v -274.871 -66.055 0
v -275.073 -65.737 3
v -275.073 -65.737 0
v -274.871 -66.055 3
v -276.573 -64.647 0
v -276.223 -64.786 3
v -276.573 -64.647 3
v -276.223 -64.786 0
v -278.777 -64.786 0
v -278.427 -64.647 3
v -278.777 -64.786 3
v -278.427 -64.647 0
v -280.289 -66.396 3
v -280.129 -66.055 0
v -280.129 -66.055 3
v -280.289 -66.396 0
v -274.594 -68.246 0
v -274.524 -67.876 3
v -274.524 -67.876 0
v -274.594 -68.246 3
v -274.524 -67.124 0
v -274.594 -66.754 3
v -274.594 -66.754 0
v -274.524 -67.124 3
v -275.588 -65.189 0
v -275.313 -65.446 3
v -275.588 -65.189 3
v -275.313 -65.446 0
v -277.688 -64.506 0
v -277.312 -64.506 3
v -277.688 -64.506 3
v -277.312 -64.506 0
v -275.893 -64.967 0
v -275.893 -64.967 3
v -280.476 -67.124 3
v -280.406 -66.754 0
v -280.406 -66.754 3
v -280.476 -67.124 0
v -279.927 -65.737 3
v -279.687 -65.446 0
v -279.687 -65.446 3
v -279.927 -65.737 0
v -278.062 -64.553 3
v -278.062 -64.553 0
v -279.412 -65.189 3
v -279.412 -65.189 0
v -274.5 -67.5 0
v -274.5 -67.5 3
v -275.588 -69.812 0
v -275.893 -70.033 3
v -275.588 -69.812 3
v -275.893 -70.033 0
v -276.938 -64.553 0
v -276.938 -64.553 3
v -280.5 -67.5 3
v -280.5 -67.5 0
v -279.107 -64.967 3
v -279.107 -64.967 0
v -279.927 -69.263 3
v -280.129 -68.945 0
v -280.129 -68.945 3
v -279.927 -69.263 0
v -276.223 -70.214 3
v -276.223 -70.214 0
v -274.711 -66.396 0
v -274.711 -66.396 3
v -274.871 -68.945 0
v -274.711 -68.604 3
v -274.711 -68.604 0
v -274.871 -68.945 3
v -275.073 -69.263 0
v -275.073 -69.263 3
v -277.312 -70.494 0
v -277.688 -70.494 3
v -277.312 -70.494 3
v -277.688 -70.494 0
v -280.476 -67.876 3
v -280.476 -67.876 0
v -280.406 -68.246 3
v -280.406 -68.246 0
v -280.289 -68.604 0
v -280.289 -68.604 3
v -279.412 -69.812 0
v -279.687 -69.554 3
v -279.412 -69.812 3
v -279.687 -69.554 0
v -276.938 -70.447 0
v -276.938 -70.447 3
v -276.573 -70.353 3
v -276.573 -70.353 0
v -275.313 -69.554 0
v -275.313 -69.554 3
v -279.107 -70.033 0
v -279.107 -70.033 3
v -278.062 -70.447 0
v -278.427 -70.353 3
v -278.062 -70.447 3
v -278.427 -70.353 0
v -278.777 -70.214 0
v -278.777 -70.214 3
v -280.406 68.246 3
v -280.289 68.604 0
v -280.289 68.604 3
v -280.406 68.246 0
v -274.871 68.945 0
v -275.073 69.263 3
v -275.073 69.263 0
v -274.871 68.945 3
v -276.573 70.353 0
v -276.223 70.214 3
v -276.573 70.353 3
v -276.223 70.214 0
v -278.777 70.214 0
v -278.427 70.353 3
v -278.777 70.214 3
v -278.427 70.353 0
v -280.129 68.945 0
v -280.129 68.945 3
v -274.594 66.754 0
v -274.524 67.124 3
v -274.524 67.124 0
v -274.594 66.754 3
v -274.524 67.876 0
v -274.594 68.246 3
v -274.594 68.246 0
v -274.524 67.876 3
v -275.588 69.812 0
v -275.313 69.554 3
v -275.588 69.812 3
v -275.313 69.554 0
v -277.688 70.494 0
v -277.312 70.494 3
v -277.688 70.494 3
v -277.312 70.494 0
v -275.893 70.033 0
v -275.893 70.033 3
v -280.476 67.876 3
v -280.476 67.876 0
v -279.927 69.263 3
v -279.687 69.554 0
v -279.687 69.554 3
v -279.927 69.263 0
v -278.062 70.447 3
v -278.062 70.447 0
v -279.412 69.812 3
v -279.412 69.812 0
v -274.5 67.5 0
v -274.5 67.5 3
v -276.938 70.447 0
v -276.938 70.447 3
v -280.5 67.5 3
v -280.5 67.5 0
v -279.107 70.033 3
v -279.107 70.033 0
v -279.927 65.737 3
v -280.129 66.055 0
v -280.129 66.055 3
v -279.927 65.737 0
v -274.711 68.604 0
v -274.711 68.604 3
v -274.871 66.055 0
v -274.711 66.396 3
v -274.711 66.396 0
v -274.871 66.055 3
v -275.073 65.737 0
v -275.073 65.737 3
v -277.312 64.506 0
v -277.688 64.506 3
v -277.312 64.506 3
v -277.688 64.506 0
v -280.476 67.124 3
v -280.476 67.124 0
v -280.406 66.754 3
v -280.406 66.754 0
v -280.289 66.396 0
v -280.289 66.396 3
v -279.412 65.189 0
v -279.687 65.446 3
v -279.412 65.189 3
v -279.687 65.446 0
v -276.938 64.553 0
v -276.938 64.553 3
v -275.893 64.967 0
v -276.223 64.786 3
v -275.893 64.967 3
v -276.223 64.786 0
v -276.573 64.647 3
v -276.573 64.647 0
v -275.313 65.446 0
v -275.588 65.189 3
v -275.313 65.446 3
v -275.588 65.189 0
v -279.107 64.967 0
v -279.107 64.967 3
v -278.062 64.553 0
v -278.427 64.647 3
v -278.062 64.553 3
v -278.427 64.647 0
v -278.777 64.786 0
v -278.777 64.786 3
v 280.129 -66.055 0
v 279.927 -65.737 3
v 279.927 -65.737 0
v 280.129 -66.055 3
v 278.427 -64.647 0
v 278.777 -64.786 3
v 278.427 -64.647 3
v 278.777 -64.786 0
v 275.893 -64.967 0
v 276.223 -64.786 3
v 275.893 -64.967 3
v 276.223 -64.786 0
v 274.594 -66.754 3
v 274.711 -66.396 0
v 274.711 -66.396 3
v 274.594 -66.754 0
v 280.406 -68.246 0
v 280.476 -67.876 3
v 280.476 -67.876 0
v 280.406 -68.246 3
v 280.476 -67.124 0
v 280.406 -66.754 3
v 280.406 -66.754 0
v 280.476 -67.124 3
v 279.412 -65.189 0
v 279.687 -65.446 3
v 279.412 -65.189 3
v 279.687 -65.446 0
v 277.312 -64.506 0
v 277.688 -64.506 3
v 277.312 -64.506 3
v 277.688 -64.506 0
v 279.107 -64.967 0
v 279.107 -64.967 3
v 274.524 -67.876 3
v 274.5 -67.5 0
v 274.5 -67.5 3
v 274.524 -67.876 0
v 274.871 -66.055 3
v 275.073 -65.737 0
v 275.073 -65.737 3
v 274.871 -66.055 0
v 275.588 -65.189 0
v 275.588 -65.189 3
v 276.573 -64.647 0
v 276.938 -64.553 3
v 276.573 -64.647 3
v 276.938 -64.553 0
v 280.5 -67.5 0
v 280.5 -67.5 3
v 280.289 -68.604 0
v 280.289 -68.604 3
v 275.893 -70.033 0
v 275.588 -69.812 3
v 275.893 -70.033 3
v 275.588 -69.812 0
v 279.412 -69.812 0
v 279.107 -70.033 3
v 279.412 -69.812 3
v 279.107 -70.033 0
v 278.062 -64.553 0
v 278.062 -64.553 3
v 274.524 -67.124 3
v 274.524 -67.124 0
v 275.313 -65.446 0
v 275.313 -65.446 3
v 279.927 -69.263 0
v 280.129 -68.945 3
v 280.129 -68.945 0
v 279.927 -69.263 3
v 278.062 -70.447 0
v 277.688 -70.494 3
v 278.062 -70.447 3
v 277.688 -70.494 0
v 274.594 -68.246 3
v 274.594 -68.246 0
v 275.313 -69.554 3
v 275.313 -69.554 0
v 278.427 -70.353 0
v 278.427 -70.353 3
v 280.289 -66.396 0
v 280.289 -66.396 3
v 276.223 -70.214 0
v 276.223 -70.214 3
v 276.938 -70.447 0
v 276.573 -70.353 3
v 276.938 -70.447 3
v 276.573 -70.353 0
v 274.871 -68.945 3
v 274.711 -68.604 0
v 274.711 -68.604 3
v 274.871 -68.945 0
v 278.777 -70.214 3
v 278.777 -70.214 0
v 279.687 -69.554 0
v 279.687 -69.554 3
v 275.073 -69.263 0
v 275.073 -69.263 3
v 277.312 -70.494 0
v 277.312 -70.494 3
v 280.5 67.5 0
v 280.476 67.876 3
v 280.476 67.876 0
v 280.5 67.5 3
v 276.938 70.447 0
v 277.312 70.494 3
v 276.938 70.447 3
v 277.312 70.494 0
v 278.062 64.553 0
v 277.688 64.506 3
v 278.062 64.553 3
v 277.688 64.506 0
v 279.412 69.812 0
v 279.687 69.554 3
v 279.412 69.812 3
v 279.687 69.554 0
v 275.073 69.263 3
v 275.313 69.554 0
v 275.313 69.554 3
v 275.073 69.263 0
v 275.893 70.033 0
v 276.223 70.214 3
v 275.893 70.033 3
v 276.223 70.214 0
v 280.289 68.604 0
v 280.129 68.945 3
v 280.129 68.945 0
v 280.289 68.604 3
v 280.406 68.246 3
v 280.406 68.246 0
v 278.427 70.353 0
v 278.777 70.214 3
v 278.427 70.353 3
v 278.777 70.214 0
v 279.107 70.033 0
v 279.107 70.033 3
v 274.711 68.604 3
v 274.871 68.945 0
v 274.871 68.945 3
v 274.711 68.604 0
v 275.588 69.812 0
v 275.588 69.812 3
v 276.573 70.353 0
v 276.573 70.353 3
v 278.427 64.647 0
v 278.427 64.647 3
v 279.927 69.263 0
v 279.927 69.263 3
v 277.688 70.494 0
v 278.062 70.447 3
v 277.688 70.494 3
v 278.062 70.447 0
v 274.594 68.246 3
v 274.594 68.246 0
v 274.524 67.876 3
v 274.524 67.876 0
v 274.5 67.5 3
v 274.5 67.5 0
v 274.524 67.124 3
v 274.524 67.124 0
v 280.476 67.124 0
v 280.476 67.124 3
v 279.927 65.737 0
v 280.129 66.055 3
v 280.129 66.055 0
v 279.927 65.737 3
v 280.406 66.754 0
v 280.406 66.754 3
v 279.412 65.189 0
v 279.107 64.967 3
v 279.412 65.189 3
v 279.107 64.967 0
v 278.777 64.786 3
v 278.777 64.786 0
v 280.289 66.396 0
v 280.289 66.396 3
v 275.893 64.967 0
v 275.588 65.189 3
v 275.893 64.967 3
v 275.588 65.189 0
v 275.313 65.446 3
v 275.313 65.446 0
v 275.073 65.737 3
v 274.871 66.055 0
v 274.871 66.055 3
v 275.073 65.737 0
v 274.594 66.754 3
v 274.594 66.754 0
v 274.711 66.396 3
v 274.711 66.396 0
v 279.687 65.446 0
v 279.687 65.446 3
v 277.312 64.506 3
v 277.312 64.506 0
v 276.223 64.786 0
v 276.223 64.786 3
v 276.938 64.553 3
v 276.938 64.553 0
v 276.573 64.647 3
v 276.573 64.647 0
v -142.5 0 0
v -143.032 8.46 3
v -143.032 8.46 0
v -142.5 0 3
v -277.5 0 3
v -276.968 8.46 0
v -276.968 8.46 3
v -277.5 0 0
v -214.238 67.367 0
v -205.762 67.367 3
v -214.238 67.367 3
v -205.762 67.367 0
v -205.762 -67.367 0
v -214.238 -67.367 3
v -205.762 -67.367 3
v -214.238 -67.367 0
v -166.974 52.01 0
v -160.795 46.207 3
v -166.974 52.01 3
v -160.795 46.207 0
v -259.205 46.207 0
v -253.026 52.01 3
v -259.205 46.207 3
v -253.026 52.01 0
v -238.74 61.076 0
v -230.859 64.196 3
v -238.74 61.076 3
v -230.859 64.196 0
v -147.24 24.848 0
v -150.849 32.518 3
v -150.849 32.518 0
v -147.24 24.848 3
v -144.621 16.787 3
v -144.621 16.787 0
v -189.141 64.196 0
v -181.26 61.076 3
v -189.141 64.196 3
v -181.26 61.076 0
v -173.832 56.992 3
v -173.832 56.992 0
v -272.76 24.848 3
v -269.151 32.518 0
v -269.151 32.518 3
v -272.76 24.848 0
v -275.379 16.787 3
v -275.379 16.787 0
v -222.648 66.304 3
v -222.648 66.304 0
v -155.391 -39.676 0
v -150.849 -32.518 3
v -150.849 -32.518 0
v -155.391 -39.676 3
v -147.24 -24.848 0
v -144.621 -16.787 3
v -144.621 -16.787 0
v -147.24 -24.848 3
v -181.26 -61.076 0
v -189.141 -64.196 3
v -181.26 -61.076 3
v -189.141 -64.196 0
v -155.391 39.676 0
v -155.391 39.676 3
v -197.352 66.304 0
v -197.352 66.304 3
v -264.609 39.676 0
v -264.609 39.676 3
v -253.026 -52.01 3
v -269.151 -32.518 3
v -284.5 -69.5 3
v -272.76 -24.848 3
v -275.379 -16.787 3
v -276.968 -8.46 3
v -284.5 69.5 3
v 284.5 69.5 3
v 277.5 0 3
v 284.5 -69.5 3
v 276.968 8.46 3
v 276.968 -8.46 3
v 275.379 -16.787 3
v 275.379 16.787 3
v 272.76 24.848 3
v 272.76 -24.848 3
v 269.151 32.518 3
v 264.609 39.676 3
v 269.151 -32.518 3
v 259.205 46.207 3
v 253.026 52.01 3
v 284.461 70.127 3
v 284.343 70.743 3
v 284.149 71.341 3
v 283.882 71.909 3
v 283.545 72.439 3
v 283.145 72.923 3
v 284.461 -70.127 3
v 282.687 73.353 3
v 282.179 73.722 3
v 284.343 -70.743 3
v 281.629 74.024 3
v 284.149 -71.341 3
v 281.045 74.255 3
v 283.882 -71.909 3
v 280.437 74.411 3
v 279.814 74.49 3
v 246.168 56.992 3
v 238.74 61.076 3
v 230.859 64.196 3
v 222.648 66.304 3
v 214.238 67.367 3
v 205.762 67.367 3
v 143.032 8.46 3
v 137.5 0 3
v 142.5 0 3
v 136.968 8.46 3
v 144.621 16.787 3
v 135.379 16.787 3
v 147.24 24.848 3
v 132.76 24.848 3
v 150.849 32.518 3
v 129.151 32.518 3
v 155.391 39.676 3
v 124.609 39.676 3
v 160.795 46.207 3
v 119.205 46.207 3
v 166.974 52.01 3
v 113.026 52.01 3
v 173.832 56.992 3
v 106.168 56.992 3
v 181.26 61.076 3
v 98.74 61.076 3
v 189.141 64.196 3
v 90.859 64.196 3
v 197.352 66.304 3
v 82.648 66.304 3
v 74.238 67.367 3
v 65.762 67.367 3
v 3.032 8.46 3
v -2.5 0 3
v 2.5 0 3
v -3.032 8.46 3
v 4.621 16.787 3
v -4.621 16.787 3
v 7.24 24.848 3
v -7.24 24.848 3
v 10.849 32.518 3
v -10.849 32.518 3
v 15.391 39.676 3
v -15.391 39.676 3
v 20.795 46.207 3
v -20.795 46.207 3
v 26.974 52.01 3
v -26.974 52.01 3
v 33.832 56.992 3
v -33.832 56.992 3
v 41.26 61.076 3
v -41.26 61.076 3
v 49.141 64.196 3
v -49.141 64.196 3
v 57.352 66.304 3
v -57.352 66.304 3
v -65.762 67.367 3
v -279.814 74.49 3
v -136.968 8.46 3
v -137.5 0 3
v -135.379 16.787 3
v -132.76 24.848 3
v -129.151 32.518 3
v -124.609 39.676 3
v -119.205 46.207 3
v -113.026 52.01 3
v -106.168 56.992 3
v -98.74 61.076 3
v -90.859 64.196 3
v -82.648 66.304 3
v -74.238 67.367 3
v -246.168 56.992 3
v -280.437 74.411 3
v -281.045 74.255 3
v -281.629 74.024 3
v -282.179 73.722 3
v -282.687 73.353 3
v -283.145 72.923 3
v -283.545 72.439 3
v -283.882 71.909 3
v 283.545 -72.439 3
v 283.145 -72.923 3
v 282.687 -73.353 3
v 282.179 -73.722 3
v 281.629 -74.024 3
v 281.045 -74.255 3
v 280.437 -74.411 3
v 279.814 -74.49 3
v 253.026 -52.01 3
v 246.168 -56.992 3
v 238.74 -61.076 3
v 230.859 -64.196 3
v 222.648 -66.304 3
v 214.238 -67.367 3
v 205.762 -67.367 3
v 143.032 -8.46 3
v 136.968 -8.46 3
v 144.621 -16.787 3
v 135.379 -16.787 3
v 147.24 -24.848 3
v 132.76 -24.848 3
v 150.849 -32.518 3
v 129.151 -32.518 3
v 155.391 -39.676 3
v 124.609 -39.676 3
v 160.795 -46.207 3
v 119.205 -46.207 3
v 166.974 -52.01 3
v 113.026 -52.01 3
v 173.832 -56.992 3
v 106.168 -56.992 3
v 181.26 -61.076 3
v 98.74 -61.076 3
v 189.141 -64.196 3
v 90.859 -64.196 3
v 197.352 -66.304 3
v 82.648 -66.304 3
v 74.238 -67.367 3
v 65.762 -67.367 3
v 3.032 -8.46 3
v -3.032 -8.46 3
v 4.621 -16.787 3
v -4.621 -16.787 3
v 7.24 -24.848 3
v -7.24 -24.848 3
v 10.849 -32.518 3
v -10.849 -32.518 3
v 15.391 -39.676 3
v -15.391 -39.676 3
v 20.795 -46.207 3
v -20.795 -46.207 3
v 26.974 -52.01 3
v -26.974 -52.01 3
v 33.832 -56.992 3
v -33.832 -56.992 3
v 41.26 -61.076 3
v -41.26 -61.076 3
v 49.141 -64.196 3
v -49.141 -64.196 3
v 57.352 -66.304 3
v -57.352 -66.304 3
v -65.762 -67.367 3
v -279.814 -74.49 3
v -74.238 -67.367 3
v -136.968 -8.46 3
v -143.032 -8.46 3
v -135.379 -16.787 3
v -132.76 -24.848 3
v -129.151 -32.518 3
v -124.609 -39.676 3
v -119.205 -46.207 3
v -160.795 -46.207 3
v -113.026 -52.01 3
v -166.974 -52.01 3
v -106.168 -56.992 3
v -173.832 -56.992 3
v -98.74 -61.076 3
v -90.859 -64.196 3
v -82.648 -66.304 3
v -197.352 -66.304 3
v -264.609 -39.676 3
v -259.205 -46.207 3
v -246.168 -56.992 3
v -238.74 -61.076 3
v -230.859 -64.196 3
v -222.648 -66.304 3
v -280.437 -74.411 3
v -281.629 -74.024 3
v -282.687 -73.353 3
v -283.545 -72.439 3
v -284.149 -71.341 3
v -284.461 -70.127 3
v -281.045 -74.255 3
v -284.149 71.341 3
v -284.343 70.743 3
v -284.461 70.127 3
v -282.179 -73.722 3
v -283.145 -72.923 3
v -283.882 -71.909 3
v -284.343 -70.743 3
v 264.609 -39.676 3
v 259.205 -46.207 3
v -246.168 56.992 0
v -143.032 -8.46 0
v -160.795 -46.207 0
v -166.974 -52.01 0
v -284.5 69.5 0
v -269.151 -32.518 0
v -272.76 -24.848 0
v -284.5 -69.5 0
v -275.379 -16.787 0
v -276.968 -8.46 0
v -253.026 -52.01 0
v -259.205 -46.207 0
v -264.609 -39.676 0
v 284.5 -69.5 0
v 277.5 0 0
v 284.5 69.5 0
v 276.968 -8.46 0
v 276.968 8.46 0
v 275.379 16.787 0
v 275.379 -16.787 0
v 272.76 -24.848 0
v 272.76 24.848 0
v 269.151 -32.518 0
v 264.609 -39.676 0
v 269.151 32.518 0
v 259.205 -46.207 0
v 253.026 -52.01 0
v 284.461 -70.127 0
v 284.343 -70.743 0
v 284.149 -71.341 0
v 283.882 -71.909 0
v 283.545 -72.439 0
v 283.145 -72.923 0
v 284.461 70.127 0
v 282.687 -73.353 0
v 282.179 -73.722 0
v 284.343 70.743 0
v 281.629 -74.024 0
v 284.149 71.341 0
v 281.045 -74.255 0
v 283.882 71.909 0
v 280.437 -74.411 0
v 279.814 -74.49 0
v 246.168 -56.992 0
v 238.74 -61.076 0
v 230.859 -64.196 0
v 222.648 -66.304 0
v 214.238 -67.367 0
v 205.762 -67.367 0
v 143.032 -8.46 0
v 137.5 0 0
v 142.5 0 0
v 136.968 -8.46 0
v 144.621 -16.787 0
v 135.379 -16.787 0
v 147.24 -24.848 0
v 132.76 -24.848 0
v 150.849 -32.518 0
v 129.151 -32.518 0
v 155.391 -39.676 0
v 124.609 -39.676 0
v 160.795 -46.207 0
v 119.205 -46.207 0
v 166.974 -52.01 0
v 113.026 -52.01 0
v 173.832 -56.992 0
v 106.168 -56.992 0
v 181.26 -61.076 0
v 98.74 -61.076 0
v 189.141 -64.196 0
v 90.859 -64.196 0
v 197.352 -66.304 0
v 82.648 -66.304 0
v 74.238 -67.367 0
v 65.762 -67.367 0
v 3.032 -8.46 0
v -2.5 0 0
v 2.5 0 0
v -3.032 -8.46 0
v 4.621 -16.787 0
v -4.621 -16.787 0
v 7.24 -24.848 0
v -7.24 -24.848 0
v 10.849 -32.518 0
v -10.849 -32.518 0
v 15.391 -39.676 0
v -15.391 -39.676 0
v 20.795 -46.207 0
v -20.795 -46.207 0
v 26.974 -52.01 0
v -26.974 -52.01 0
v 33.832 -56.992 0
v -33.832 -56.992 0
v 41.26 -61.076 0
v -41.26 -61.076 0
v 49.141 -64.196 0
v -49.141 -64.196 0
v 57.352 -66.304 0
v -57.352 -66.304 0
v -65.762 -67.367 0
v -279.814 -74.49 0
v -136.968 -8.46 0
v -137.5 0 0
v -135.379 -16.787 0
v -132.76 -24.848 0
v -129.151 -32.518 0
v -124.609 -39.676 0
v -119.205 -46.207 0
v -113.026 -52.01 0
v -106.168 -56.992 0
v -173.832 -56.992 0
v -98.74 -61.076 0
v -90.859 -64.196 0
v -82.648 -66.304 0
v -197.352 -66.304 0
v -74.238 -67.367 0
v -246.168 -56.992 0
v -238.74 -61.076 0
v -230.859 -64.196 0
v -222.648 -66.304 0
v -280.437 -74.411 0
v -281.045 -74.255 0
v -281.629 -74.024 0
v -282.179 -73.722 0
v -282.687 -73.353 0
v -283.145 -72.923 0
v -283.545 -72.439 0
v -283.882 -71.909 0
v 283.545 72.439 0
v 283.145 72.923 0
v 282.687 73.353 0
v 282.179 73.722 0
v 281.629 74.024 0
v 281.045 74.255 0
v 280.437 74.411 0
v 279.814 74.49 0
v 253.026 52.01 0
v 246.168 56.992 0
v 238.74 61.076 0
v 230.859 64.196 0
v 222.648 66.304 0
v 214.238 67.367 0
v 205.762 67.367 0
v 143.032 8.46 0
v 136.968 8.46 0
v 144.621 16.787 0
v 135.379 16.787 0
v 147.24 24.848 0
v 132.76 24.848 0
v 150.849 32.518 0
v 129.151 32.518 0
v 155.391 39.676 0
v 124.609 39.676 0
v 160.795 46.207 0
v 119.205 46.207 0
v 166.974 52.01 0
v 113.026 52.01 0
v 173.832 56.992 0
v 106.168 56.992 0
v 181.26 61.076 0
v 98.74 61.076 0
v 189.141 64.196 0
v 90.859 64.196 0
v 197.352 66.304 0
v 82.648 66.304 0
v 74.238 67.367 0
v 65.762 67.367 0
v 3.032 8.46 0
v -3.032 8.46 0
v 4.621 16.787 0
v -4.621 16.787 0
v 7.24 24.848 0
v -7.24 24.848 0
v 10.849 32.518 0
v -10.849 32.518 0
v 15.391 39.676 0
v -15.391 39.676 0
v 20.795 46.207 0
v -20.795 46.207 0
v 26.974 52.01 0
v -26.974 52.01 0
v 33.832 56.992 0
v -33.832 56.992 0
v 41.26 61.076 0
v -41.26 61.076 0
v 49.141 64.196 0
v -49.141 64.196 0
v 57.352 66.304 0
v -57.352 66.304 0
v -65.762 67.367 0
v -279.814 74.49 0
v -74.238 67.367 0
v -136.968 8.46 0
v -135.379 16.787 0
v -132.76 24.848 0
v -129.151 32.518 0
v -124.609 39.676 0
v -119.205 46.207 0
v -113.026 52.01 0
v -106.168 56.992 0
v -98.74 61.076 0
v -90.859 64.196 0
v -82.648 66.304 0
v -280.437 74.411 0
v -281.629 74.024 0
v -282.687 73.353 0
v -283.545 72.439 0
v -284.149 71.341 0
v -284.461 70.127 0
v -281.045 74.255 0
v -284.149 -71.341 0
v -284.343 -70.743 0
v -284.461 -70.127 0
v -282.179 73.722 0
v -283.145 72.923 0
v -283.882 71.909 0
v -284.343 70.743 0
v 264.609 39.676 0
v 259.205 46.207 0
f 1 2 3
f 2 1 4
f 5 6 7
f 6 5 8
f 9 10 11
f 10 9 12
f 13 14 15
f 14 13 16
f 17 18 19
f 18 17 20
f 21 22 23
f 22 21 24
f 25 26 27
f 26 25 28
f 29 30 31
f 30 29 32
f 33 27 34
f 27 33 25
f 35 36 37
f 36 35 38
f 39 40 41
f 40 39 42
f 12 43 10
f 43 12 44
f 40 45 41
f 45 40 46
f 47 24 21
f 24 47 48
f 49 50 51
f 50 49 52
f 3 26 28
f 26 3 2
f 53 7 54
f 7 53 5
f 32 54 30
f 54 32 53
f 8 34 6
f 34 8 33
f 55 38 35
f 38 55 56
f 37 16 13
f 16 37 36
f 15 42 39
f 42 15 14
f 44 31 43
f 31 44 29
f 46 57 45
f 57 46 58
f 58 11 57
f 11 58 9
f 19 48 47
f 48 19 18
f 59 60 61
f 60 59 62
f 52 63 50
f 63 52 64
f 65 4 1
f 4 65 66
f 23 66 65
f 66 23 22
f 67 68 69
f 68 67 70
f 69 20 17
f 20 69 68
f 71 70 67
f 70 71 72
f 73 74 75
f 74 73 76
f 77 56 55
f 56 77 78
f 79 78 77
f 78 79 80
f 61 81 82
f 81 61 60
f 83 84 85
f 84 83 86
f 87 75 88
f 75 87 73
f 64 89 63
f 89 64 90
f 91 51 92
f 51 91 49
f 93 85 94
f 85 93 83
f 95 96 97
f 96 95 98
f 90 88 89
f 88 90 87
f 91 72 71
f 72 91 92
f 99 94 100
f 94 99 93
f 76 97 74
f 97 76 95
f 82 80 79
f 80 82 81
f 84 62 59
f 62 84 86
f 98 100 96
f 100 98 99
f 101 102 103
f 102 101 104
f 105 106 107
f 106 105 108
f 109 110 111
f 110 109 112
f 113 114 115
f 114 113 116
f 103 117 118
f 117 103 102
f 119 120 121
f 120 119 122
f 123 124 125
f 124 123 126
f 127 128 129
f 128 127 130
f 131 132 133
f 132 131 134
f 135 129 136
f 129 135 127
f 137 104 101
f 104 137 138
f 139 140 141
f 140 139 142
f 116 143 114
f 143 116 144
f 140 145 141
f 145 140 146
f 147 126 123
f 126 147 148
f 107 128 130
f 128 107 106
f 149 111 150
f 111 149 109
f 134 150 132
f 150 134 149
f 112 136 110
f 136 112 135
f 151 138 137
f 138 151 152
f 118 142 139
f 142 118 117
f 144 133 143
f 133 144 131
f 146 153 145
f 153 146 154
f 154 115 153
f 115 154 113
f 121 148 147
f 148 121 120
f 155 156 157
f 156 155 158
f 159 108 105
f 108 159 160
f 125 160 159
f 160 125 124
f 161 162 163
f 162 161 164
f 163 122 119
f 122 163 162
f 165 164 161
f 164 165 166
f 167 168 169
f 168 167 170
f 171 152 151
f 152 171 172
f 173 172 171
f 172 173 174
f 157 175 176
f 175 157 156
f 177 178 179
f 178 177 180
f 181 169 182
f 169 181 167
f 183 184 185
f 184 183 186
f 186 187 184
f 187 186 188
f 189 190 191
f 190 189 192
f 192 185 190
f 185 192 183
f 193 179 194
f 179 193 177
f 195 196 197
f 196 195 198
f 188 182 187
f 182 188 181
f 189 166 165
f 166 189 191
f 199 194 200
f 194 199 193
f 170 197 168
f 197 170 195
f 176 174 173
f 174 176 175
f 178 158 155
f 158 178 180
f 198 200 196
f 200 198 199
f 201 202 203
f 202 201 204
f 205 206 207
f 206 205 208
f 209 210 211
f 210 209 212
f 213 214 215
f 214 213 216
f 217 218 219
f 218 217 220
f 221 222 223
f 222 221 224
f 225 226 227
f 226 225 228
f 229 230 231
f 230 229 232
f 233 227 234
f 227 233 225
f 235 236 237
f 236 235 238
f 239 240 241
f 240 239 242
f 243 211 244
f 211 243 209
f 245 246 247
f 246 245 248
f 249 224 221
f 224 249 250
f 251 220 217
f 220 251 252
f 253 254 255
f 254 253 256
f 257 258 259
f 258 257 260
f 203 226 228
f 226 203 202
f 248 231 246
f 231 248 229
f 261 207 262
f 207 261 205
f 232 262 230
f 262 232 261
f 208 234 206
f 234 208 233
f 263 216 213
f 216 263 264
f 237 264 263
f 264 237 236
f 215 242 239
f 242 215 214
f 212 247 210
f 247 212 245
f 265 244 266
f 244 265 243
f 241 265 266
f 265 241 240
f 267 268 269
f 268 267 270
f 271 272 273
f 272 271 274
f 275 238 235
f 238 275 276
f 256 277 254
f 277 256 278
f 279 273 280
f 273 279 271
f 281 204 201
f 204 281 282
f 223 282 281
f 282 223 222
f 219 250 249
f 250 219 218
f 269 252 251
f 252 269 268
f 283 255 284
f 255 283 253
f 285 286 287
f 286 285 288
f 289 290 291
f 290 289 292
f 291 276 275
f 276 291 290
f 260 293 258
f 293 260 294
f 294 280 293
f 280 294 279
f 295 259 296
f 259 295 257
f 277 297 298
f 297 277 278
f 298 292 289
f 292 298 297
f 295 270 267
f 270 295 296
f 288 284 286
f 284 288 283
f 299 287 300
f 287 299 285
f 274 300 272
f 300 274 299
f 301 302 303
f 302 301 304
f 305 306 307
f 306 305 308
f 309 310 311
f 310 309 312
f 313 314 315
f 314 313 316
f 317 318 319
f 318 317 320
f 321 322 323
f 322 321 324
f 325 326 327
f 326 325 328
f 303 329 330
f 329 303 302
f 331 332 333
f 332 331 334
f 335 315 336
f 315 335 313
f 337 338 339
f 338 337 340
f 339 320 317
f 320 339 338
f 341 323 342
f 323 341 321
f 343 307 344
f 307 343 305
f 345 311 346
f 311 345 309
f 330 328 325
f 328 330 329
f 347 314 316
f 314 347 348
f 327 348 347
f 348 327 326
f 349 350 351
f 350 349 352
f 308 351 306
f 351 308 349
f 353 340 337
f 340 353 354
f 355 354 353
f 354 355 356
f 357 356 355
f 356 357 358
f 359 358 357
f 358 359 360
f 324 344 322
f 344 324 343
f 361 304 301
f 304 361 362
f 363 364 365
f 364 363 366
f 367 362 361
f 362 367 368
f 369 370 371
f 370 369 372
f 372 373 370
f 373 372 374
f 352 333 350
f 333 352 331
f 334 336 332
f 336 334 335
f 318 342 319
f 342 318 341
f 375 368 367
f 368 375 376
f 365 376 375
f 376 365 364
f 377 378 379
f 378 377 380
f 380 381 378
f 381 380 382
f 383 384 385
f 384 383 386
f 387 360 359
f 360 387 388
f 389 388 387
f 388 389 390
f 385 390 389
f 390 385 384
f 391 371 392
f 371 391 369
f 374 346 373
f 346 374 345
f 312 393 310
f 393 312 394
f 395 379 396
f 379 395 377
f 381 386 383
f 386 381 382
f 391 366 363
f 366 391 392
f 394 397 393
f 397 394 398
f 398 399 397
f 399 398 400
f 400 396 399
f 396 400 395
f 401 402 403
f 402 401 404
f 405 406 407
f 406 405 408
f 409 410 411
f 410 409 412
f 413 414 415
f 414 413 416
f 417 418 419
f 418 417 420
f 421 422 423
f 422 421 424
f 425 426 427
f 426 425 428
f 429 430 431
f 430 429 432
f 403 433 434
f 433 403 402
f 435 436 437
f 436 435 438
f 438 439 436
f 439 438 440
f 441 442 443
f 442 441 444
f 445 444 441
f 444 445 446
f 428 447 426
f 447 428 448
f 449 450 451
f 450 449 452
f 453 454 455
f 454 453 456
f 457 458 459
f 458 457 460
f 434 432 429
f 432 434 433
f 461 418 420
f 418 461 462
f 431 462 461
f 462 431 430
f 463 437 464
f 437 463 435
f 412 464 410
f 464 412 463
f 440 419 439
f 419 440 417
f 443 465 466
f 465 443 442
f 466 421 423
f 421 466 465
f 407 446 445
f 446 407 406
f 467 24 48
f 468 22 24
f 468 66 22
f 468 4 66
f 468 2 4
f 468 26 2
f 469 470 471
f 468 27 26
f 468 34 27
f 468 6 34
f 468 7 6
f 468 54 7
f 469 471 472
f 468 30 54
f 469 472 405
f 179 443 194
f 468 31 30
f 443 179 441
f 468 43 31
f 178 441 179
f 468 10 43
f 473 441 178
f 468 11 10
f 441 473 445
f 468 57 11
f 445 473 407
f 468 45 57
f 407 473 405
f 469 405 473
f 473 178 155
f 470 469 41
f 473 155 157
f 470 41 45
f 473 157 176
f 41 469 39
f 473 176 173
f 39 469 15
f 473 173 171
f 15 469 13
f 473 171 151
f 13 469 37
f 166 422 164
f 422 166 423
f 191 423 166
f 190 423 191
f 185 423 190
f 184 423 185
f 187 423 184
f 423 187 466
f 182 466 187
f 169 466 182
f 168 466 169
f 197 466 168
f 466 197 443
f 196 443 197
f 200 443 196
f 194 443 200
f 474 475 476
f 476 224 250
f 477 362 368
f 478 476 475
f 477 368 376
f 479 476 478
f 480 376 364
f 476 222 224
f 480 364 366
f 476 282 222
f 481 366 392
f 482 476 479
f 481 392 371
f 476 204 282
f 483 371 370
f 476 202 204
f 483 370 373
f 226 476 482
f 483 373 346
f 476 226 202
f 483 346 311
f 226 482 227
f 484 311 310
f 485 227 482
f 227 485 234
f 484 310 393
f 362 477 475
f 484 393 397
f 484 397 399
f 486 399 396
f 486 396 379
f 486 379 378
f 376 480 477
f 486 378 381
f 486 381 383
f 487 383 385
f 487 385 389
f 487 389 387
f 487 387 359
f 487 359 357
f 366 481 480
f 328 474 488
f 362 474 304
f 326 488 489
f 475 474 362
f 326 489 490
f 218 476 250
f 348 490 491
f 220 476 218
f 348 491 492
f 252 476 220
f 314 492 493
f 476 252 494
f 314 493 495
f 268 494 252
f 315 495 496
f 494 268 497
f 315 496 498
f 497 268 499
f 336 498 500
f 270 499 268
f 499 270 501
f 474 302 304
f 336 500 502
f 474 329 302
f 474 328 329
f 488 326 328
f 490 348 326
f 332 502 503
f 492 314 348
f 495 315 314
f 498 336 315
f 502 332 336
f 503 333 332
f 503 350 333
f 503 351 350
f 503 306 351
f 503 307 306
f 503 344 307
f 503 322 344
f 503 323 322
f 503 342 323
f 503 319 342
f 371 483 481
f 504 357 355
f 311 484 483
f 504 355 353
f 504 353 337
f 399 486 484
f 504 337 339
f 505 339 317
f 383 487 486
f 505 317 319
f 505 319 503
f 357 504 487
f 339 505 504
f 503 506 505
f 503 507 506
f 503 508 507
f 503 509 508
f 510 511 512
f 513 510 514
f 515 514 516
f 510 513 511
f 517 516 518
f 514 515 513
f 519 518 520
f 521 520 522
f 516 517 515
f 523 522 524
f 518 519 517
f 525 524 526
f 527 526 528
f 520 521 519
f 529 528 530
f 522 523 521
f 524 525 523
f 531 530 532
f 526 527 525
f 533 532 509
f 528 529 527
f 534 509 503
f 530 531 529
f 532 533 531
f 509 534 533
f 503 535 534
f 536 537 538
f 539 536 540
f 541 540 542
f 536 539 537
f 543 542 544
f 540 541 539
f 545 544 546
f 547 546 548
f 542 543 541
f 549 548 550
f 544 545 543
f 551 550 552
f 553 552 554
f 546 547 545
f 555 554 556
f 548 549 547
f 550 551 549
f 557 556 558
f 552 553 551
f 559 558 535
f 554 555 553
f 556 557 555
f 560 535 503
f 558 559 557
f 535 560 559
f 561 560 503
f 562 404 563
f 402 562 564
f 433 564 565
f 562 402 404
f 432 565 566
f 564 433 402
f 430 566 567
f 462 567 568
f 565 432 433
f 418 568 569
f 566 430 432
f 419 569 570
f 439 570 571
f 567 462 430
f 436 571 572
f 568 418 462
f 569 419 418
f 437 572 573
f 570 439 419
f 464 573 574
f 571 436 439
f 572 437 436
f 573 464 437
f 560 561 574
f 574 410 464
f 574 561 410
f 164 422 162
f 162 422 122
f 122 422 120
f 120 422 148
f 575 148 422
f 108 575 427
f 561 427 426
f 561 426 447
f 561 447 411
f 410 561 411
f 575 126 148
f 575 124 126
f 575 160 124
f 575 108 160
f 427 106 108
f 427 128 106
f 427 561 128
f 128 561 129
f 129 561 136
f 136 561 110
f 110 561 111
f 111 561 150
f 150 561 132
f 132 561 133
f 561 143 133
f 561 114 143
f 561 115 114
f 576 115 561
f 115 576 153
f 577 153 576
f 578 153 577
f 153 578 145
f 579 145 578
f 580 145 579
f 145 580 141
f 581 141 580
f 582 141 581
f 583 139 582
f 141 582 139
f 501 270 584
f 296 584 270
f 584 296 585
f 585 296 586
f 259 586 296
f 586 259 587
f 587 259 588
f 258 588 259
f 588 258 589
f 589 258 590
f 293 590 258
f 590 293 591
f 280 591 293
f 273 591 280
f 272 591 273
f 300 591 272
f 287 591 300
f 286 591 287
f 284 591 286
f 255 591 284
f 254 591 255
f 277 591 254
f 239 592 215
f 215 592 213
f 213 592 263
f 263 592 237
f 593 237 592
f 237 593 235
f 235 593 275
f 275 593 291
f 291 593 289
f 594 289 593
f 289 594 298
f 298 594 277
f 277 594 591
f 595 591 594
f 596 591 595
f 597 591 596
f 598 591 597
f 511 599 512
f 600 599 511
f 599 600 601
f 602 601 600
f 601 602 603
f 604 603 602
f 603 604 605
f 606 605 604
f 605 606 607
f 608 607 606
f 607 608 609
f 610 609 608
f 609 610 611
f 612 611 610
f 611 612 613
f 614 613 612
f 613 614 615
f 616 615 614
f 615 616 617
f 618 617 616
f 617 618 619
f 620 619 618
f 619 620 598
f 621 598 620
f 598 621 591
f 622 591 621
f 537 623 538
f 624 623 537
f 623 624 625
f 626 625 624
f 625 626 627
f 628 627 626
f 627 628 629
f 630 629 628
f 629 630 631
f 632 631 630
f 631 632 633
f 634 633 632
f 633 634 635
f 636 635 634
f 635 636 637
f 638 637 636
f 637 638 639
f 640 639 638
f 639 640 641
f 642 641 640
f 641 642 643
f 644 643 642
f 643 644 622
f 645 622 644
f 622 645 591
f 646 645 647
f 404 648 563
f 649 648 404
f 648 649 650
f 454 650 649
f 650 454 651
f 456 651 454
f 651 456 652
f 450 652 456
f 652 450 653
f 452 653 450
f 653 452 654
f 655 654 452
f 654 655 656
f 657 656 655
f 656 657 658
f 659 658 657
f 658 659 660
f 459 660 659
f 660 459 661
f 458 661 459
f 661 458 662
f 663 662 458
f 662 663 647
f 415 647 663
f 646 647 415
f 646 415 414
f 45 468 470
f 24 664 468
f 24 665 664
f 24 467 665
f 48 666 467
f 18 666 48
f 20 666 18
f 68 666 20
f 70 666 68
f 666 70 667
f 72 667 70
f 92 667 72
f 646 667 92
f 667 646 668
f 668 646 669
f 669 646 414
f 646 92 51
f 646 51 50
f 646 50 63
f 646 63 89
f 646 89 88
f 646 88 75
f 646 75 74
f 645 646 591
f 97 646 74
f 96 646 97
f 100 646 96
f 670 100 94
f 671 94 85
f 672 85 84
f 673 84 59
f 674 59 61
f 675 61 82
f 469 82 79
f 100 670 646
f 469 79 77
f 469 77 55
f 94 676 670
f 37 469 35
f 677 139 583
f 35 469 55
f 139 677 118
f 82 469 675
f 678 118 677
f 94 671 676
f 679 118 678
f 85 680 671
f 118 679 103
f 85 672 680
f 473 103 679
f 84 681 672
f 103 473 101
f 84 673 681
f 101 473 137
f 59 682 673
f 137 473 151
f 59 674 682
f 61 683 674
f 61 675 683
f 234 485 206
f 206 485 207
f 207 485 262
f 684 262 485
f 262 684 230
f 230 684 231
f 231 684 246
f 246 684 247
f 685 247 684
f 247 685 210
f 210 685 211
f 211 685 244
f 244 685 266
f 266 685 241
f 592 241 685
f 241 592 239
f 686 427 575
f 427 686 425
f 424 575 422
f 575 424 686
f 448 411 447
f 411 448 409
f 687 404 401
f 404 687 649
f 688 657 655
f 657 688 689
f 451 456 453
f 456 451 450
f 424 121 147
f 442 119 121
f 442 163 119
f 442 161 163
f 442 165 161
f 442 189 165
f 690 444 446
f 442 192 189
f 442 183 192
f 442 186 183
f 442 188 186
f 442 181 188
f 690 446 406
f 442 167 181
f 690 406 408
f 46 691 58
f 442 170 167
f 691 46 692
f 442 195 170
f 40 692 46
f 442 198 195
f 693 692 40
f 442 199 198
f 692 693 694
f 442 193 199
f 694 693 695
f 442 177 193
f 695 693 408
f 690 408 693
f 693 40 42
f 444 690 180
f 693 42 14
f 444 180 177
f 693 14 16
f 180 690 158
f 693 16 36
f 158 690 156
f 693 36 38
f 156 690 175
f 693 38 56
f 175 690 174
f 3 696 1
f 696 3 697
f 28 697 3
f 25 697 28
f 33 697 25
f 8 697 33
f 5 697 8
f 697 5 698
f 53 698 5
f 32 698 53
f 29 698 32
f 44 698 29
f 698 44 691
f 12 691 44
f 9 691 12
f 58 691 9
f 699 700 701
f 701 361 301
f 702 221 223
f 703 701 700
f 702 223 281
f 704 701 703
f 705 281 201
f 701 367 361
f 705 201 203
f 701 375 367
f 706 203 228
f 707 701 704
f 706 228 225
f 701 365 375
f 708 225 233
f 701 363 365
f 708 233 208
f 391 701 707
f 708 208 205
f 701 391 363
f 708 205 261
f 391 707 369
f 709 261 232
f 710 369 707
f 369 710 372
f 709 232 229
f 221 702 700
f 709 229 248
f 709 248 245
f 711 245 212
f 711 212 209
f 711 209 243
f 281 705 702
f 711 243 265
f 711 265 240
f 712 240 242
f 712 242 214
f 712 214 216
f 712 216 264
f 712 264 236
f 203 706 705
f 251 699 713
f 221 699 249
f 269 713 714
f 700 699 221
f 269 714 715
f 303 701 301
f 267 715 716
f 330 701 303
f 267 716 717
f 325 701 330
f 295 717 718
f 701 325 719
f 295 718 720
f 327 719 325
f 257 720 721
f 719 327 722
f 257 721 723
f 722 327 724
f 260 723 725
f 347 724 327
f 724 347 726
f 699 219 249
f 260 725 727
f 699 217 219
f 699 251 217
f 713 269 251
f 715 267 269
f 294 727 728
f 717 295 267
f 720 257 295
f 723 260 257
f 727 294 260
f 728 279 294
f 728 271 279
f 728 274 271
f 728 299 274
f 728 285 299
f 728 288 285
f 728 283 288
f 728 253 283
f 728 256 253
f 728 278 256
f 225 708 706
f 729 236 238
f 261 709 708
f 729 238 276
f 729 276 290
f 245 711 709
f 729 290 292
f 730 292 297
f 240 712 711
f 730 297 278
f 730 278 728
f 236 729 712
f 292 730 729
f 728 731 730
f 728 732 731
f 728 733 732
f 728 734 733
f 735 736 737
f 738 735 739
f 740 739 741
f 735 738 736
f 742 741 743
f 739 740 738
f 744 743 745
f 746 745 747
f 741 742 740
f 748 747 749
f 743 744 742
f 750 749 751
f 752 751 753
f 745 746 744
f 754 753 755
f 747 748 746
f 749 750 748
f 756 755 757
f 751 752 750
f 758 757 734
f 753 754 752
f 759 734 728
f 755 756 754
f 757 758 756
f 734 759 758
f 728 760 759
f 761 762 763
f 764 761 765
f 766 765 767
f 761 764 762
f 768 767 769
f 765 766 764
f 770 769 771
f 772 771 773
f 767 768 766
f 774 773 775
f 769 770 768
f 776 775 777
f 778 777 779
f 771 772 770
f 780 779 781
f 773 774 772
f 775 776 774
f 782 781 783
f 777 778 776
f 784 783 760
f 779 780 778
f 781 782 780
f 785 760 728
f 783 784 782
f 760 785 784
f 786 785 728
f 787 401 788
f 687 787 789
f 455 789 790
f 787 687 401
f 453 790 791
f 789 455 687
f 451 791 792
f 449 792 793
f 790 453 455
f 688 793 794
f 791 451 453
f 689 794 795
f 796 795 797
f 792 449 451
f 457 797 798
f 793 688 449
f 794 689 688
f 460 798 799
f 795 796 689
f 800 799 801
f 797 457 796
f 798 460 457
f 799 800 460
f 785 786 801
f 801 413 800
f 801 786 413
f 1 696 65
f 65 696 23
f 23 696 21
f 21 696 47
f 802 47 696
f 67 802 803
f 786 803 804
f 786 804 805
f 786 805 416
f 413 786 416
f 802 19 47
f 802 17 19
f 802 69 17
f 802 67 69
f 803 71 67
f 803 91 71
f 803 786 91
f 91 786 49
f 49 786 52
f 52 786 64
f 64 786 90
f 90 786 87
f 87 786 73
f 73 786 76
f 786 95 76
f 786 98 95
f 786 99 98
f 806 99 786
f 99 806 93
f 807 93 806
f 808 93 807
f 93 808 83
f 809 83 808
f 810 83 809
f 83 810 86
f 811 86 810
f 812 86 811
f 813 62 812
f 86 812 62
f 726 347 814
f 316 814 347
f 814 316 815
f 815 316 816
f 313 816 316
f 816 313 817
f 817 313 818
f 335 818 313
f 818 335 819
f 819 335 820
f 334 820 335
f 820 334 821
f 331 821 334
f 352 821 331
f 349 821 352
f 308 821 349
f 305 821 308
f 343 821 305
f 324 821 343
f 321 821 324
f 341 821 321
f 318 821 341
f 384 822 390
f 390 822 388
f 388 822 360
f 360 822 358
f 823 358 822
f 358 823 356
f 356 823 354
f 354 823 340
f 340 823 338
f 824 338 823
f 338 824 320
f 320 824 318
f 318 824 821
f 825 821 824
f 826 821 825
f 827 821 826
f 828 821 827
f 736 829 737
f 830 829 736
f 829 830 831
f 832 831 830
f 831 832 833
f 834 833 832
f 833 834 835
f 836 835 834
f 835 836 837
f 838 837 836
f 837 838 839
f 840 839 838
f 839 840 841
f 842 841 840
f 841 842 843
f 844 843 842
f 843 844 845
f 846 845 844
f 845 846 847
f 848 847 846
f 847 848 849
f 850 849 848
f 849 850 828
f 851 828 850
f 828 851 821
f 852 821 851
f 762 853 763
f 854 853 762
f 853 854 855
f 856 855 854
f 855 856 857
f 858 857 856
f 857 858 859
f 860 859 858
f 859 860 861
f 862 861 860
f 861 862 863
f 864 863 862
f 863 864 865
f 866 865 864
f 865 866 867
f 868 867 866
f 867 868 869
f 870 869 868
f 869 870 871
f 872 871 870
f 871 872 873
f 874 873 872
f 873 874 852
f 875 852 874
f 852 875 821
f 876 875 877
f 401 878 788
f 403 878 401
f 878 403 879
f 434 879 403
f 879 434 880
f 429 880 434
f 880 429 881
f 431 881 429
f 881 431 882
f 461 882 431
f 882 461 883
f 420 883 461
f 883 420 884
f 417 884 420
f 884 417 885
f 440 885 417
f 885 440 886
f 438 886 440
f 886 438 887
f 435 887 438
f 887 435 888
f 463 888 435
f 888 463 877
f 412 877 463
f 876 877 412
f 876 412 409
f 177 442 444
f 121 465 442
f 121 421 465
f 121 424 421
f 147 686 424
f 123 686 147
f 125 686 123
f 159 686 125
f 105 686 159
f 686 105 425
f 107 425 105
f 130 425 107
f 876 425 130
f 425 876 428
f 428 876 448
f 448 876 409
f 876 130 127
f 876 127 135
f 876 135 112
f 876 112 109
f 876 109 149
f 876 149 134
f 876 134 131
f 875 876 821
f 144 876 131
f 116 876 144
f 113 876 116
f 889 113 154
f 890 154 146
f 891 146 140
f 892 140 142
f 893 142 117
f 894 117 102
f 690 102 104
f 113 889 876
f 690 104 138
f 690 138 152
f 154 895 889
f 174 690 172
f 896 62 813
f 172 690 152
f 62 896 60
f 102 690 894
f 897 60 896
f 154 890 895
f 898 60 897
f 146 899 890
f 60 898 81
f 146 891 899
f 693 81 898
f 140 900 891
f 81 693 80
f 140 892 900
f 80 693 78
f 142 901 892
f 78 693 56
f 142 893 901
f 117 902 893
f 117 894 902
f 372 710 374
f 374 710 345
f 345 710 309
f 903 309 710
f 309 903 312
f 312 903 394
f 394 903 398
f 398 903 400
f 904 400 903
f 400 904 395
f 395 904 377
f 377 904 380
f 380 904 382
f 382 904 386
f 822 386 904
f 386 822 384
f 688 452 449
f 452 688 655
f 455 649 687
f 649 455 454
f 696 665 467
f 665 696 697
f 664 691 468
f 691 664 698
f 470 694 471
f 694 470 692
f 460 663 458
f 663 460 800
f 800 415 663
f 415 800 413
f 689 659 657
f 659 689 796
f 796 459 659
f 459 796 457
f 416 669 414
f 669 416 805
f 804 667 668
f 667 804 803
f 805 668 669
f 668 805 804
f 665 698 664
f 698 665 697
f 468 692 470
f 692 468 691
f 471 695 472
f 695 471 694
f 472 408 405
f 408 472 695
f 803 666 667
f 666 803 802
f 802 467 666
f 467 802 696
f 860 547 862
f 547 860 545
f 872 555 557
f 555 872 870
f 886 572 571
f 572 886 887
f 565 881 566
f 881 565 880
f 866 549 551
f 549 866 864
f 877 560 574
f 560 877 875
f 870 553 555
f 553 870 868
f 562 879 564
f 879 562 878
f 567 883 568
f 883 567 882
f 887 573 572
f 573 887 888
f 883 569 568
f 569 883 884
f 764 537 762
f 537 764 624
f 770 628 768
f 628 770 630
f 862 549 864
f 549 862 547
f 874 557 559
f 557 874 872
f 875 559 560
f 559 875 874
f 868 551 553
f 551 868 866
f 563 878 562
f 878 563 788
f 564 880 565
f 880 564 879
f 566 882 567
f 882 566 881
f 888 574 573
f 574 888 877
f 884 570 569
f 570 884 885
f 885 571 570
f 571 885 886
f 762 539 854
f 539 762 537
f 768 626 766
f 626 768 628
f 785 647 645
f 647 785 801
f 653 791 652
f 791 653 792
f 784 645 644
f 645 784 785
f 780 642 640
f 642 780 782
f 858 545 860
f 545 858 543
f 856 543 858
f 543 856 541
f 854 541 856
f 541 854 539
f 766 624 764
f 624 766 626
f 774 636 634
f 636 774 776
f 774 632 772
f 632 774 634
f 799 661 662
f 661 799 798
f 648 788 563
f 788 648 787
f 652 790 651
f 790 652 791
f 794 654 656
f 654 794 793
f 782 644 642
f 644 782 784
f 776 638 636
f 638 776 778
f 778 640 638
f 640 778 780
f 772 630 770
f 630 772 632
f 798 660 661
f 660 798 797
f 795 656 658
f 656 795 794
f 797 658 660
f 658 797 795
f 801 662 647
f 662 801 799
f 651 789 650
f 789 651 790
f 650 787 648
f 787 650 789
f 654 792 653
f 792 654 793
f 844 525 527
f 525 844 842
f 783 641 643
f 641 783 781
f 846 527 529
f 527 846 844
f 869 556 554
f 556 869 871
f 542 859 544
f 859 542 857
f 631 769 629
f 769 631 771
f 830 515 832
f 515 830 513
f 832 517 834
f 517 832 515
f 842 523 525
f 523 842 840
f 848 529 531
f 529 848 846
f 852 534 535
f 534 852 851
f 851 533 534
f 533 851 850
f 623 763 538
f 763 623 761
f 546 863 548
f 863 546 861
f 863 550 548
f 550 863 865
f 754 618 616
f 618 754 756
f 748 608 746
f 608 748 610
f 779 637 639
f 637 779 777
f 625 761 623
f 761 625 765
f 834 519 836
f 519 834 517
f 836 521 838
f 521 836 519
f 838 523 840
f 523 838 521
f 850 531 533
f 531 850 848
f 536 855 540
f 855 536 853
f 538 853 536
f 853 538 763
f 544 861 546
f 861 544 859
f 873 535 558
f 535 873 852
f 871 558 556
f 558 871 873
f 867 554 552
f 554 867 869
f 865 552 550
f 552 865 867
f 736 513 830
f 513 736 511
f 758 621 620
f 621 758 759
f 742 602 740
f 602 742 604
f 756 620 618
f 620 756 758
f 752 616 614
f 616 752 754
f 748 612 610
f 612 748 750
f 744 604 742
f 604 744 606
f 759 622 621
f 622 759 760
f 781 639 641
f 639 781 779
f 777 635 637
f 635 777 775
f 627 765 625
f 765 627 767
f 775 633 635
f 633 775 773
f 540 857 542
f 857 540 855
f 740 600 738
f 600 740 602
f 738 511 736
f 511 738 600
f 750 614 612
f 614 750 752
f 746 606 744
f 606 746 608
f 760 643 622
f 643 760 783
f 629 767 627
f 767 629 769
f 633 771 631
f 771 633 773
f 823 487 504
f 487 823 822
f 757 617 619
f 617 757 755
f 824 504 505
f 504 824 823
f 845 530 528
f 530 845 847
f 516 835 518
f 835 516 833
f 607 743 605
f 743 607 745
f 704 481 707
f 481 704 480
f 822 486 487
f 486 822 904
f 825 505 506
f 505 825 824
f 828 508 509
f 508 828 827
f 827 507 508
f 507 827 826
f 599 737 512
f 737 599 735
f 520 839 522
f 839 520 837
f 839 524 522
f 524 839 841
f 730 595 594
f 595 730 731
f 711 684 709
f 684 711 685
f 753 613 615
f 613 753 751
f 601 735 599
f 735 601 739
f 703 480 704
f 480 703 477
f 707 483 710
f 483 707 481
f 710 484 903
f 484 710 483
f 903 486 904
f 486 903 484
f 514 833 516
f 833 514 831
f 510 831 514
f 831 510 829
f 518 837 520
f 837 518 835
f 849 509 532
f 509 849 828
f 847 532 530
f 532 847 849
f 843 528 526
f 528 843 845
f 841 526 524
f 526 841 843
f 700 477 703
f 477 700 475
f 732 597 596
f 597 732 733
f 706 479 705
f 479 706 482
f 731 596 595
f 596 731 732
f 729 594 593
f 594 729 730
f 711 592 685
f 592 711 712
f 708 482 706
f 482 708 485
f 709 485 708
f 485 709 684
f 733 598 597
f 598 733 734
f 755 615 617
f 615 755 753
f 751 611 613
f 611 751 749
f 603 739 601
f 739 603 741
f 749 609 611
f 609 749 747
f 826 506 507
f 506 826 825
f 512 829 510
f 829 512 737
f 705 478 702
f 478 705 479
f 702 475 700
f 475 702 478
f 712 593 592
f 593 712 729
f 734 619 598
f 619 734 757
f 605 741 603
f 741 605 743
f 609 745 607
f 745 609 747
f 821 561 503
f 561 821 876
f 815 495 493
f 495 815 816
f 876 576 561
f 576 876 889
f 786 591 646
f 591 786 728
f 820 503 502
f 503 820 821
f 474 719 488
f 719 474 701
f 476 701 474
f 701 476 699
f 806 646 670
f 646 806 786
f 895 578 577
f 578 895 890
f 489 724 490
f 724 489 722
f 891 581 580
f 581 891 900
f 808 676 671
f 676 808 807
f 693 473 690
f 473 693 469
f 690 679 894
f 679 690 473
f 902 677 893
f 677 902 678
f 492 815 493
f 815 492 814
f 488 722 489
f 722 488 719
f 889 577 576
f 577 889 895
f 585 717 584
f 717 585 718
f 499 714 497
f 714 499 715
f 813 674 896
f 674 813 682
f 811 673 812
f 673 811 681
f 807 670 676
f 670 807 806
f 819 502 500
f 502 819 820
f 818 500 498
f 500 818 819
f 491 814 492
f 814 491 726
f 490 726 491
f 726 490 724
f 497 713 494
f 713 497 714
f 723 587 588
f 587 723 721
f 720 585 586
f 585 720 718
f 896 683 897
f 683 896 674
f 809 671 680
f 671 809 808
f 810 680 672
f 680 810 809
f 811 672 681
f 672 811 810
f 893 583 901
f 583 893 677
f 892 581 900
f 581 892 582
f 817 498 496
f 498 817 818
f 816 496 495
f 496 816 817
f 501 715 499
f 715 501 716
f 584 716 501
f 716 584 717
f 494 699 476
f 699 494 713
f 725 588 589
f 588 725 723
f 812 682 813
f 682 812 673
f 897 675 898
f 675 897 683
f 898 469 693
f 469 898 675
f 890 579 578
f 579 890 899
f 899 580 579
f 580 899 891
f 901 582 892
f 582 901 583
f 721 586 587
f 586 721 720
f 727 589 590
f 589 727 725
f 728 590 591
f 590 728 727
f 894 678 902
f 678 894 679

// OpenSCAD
$fn = 50;


difference() {
	union() {
		hull() {
			translate(v = [-279.5000000000, 69.5000000000, 0]) {
				cylinder(h = 3, r = 5);
			}
			translate(v = [279.5000000000, 69.5000000000, 0]) {
				cylinder(h = 3, r = 5);
			}
			translate(v = [-279.5000000000, -69.5000000000, 0]) {
				cylinder(h = 3, r = 5);
			}
			translate(v = [279.5000000000, -69.5000000000, 0]) {
				cylinder(h = 3, r = 5);
			}
		}
	}
	union() {
		#translate(v = [-277.5000000000, -67.5000000000, -100.0000000000]) {
			cylinder(h = 200, r = 3.0000000000);
		}
		#translate(v = [-277.5000000000, 67.5000000000, -100.0000000000]) {
			cylinder(h = 200, r = 3.0000000000);
		}
		#translate(v = [277.5000000000, -67.5000000000, -100.0000000000]) {
			cylinder(h = 200, r = 3.0000000000);
		}
		#translate(v = [277.5000000000, 67.5000000000, -100.0000000000]) {
			cylinder(h = 200, r = 3.0000000000);
		}
		#translate(v = [-210.0000000000, 0, 0]) {
			cylinder(h = 3, r = 67.5000000000);
		}
		#translate(v = [-70.0000000000, 0, 0]) {
			cylinder(h = 3, r = 67.5000000000);
		}
		#translate(v = [70.0000000000, 0, 0]) {
			cylinder(h = 3, r = 67.5000000000);
		}
		#translate(v = [210.0000000000, 0, 0]) {
			cylinder(h = 3, r = 67.5000000000);
		}
	}
}
